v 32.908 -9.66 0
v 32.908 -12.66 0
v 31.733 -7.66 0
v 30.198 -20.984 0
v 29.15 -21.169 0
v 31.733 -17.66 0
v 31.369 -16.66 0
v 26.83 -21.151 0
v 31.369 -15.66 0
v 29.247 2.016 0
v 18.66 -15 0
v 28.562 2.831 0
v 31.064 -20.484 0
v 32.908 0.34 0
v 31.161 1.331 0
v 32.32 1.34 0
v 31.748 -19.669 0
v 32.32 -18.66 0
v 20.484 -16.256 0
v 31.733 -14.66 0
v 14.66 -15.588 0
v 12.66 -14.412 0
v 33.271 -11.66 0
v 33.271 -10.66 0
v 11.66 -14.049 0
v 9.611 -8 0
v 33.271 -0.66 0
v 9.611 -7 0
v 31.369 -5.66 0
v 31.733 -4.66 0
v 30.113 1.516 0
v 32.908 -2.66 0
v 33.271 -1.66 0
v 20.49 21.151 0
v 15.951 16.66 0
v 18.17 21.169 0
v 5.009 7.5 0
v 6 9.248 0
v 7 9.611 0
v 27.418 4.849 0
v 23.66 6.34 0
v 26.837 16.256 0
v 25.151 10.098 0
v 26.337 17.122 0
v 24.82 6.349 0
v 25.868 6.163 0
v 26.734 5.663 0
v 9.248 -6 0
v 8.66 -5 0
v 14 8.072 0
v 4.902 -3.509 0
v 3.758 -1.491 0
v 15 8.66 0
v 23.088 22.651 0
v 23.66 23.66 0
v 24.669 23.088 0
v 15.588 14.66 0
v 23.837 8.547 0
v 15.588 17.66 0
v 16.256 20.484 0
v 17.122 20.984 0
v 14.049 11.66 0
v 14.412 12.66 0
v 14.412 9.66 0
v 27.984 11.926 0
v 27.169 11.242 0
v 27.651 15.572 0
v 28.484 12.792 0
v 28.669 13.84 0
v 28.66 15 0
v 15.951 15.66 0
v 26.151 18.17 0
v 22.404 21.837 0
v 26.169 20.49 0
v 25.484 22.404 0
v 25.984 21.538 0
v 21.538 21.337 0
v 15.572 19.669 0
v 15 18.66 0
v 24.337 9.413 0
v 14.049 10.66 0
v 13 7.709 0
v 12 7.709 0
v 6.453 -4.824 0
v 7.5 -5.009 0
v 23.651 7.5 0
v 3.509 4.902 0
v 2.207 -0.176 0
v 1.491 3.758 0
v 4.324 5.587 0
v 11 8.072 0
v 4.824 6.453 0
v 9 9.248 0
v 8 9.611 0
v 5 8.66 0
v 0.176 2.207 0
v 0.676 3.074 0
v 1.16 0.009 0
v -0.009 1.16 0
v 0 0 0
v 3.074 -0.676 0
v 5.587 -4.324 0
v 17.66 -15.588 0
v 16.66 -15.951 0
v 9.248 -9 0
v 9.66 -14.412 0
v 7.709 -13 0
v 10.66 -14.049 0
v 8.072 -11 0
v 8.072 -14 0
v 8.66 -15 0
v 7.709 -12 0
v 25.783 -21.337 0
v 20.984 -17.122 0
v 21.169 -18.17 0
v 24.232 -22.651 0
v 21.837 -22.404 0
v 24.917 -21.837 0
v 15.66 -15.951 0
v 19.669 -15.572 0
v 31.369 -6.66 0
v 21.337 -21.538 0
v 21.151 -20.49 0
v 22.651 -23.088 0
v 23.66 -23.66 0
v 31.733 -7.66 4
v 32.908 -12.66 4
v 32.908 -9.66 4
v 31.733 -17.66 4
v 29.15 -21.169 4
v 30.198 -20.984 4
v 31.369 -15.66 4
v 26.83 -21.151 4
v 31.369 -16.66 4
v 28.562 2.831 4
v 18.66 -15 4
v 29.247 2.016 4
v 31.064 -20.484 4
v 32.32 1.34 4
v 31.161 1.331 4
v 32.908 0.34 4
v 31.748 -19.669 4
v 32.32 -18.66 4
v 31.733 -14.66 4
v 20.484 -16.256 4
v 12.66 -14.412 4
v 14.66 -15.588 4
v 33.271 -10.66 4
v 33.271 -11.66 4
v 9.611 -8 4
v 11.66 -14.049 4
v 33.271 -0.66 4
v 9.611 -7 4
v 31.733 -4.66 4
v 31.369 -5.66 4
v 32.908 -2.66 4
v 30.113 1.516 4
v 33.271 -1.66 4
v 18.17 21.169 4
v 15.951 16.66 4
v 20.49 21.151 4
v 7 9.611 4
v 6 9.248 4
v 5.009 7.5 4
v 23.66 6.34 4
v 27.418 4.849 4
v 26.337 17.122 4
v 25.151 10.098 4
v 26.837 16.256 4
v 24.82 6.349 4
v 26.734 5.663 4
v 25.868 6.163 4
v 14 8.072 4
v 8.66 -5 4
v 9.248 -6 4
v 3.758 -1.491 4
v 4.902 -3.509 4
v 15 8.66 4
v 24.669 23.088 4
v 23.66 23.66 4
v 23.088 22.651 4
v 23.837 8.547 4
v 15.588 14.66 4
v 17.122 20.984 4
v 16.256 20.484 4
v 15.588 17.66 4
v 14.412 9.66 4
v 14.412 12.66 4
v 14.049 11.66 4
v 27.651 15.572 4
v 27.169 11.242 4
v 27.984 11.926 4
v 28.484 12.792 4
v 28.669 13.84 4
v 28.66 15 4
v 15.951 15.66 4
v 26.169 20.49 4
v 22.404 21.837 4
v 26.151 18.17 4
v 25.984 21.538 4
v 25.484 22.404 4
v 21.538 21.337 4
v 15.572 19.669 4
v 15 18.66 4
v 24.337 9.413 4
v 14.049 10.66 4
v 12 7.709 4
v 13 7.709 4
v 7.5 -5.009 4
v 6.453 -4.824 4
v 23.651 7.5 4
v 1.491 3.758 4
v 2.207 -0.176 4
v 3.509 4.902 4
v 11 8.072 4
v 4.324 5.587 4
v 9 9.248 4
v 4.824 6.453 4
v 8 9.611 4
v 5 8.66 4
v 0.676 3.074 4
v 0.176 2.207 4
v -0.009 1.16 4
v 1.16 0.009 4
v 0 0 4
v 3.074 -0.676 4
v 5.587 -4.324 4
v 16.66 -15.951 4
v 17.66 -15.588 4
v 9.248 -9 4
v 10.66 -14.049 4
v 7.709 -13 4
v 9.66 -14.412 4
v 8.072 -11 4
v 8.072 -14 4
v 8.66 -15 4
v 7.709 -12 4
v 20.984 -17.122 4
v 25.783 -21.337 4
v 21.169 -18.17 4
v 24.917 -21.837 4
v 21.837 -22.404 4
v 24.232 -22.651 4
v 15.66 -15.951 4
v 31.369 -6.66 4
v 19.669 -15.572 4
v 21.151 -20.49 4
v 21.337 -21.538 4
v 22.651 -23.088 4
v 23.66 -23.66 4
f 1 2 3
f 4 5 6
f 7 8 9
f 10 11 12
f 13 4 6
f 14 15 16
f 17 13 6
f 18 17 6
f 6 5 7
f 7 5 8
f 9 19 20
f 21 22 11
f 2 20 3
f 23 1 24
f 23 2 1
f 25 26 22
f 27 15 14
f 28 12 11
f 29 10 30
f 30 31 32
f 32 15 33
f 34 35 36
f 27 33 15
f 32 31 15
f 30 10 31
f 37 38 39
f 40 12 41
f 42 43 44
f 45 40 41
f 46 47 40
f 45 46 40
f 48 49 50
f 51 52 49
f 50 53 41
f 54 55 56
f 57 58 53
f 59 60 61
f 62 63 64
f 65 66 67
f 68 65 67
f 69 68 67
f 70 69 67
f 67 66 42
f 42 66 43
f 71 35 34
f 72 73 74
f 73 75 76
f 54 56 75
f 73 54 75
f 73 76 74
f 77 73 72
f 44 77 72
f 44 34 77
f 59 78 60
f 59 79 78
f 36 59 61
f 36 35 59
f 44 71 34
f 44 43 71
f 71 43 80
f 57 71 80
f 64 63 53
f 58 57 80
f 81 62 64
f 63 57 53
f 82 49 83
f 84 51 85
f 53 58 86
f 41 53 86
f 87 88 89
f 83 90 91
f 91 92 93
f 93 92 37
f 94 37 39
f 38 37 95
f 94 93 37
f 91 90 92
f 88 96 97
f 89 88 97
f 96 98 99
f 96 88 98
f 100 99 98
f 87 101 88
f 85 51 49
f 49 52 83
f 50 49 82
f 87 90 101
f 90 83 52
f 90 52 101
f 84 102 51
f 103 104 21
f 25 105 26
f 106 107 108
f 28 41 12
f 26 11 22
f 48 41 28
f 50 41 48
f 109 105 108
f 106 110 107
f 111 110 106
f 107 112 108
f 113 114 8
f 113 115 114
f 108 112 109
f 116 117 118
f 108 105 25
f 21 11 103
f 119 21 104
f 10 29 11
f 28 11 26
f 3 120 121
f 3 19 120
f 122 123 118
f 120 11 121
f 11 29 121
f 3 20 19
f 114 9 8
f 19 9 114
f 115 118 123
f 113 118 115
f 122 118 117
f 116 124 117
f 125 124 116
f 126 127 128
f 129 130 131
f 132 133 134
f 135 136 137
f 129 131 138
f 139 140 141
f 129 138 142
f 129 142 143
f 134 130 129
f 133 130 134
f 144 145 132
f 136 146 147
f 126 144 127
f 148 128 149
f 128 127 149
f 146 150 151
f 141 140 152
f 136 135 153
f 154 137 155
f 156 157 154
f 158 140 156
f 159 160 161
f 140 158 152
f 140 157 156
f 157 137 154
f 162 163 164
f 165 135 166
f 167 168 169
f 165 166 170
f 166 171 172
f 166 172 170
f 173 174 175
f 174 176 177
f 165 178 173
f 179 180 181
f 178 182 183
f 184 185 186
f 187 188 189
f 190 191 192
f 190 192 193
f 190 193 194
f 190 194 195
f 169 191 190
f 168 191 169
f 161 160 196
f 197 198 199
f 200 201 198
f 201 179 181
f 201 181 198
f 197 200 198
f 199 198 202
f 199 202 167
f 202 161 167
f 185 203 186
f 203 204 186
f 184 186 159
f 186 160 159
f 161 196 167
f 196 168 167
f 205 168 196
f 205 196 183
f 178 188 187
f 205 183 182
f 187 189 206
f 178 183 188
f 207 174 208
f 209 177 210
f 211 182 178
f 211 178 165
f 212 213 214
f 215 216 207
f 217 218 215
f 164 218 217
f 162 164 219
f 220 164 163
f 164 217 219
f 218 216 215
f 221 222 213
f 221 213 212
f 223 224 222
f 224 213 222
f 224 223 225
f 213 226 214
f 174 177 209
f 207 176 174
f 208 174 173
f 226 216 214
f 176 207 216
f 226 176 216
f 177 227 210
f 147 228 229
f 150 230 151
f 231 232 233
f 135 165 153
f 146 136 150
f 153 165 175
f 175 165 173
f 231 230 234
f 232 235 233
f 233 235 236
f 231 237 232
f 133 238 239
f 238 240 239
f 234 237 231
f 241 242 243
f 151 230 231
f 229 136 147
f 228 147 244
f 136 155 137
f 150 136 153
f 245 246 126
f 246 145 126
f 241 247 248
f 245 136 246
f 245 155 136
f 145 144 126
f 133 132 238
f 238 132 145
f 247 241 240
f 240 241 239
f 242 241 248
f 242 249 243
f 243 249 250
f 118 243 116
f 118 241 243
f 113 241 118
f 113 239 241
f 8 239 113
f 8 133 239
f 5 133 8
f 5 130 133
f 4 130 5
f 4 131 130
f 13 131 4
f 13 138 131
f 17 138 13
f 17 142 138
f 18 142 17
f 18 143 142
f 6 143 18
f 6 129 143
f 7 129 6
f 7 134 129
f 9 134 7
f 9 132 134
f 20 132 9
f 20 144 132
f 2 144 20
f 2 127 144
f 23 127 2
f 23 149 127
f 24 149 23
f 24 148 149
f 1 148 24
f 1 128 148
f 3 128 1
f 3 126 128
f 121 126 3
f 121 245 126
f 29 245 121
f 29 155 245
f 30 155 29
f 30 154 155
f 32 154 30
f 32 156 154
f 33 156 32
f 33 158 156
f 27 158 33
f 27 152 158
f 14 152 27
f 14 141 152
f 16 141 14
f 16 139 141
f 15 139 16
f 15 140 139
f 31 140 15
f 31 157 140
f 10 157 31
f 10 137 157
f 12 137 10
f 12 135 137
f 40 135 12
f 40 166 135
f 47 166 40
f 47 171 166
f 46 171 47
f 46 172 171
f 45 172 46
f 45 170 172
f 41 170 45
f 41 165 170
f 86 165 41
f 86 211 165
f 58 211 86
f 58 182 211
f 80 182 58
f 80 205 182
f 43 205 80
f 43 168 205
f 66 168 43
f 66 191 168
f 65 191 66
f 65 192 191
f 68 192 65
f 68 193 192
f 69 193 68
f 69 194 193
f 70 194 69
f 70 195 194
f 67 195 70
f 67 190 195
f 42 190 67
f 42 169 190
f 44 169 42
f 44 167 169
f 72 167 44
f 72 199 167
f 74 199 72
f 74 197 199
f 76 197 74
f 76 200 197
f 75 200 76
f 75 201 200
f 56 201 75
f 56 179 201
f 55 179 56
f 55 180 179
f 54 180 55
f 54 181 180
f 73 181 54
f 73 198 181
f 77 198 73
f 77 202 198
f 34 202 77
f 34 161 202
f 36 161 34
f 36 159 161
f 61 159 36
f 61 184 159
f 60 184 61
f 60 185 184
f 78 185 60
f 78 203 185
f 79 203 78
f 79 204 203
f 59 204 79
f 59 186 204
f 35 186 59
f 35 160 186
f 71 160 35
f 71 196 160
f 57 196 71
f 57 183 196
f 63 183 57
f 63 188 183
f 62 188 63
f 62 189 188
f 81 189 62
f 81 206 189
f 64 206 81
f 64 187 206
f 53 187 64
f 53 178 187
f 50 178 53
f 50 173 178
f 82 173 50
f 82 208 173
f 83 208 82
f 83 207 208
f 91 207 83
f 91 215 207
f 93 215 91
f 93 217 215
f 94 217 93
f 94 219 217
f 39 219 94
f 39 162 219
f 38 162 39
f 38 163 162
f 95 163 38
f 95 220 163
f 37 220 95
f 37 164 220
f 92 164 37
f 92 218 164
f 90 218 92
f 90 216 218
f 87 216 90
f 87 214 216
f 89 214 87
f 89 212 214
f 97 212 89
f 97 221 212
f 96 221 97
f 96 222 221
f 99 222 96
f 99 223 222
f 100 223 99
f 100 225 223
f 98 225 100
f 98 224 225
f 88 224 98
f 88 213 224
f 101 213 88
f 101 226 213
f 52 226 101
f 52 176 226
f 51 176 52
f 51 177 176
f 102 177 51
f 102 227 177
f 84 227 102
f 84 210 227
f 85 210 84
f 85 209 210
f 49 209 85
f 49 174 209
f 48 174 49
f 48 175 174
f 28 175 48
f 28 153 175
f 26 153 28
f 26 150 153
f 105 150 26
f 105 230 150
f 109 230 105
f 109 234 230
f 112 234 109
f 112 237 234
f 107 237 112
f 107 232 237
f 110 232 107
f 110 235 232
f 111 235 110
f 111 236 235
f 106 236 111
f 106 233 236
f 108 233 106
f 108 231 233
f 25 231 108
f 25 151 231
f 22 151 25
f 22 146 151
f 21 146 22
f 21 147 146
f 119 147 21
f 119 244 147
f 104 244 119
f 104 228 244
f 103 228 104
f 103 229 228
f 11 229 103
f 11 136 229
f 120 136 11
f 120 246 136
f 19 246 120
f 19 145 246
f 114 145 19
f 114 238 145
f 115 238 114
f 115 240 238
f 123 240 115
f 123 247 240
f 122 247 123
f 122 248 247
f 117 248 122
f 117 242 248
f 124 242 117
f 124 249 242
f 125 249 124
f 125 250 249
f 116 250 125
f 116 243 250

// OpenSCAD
// Produce Tile(a,b)
a = 1;
b = 1;

curve_amount = 0.1;

c = cos(60);
s = sin(60);

moves = [
    [0,0],
    [c*b, s*b],
    [b,0],
    [0,a],
    [s*a, c*a],
    [c*b, -s*b],
    [-c*b, -s*b],
    [s*a, -c*a],
    [0, -a],
    [0, -a],
    [-s*a, -c*a],
    [-c*b, s*b],
    [-b, 0],
    [0, a],
    [-s*a, c*a]
];
    
points = [ 
    for (
        i=0, p=moves[0]; 
        i < len(moves)-1; 
        i = i+1, p = p + moves[i]
    )
    p
];
    
function curve_between(a, b, steps=10, curve=curve_amount) = 
    let(
        d = b-a,
        n = [d[1],-d[0]]/norm(d)
    )
    [ for (i=0,t=0; i<steps; i = i+1, t=i/steps) t*b + (1-t)*a + n*sin(-360*t)*curve ]
;

curve_points = [ for(i=0;i<len(points);i=i+1) each curve_between(points[i], points[(i+1) % len(points)]) ];

 module tile() {
     linear_extrude(4) {
         scale(10) polygon(curve_points);
     }
 }
 
tile();
